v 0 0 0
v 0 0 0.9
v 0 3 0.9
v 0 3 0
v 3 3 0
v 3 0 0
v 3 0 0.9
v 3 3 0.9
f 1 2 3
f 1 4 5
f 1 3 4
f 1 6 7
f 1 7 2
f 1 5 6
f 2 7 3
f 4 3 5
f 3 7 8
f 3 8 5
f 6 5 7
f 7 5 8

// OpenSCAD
/* Warning, this is a very basic generator with a lot of approximation 
input data : [VQFN, ULX, 3x3x0.9mm, 16, , B, C04-00392B]
generated by com.zoubworld.electronics.cad.model3d.Basic
Date : Sun Feb 15 10:50:48 CET 2026
*/

//body
color("black")
translate([0,0,0])
cube([3.0,3.0,0.9], center=false);
